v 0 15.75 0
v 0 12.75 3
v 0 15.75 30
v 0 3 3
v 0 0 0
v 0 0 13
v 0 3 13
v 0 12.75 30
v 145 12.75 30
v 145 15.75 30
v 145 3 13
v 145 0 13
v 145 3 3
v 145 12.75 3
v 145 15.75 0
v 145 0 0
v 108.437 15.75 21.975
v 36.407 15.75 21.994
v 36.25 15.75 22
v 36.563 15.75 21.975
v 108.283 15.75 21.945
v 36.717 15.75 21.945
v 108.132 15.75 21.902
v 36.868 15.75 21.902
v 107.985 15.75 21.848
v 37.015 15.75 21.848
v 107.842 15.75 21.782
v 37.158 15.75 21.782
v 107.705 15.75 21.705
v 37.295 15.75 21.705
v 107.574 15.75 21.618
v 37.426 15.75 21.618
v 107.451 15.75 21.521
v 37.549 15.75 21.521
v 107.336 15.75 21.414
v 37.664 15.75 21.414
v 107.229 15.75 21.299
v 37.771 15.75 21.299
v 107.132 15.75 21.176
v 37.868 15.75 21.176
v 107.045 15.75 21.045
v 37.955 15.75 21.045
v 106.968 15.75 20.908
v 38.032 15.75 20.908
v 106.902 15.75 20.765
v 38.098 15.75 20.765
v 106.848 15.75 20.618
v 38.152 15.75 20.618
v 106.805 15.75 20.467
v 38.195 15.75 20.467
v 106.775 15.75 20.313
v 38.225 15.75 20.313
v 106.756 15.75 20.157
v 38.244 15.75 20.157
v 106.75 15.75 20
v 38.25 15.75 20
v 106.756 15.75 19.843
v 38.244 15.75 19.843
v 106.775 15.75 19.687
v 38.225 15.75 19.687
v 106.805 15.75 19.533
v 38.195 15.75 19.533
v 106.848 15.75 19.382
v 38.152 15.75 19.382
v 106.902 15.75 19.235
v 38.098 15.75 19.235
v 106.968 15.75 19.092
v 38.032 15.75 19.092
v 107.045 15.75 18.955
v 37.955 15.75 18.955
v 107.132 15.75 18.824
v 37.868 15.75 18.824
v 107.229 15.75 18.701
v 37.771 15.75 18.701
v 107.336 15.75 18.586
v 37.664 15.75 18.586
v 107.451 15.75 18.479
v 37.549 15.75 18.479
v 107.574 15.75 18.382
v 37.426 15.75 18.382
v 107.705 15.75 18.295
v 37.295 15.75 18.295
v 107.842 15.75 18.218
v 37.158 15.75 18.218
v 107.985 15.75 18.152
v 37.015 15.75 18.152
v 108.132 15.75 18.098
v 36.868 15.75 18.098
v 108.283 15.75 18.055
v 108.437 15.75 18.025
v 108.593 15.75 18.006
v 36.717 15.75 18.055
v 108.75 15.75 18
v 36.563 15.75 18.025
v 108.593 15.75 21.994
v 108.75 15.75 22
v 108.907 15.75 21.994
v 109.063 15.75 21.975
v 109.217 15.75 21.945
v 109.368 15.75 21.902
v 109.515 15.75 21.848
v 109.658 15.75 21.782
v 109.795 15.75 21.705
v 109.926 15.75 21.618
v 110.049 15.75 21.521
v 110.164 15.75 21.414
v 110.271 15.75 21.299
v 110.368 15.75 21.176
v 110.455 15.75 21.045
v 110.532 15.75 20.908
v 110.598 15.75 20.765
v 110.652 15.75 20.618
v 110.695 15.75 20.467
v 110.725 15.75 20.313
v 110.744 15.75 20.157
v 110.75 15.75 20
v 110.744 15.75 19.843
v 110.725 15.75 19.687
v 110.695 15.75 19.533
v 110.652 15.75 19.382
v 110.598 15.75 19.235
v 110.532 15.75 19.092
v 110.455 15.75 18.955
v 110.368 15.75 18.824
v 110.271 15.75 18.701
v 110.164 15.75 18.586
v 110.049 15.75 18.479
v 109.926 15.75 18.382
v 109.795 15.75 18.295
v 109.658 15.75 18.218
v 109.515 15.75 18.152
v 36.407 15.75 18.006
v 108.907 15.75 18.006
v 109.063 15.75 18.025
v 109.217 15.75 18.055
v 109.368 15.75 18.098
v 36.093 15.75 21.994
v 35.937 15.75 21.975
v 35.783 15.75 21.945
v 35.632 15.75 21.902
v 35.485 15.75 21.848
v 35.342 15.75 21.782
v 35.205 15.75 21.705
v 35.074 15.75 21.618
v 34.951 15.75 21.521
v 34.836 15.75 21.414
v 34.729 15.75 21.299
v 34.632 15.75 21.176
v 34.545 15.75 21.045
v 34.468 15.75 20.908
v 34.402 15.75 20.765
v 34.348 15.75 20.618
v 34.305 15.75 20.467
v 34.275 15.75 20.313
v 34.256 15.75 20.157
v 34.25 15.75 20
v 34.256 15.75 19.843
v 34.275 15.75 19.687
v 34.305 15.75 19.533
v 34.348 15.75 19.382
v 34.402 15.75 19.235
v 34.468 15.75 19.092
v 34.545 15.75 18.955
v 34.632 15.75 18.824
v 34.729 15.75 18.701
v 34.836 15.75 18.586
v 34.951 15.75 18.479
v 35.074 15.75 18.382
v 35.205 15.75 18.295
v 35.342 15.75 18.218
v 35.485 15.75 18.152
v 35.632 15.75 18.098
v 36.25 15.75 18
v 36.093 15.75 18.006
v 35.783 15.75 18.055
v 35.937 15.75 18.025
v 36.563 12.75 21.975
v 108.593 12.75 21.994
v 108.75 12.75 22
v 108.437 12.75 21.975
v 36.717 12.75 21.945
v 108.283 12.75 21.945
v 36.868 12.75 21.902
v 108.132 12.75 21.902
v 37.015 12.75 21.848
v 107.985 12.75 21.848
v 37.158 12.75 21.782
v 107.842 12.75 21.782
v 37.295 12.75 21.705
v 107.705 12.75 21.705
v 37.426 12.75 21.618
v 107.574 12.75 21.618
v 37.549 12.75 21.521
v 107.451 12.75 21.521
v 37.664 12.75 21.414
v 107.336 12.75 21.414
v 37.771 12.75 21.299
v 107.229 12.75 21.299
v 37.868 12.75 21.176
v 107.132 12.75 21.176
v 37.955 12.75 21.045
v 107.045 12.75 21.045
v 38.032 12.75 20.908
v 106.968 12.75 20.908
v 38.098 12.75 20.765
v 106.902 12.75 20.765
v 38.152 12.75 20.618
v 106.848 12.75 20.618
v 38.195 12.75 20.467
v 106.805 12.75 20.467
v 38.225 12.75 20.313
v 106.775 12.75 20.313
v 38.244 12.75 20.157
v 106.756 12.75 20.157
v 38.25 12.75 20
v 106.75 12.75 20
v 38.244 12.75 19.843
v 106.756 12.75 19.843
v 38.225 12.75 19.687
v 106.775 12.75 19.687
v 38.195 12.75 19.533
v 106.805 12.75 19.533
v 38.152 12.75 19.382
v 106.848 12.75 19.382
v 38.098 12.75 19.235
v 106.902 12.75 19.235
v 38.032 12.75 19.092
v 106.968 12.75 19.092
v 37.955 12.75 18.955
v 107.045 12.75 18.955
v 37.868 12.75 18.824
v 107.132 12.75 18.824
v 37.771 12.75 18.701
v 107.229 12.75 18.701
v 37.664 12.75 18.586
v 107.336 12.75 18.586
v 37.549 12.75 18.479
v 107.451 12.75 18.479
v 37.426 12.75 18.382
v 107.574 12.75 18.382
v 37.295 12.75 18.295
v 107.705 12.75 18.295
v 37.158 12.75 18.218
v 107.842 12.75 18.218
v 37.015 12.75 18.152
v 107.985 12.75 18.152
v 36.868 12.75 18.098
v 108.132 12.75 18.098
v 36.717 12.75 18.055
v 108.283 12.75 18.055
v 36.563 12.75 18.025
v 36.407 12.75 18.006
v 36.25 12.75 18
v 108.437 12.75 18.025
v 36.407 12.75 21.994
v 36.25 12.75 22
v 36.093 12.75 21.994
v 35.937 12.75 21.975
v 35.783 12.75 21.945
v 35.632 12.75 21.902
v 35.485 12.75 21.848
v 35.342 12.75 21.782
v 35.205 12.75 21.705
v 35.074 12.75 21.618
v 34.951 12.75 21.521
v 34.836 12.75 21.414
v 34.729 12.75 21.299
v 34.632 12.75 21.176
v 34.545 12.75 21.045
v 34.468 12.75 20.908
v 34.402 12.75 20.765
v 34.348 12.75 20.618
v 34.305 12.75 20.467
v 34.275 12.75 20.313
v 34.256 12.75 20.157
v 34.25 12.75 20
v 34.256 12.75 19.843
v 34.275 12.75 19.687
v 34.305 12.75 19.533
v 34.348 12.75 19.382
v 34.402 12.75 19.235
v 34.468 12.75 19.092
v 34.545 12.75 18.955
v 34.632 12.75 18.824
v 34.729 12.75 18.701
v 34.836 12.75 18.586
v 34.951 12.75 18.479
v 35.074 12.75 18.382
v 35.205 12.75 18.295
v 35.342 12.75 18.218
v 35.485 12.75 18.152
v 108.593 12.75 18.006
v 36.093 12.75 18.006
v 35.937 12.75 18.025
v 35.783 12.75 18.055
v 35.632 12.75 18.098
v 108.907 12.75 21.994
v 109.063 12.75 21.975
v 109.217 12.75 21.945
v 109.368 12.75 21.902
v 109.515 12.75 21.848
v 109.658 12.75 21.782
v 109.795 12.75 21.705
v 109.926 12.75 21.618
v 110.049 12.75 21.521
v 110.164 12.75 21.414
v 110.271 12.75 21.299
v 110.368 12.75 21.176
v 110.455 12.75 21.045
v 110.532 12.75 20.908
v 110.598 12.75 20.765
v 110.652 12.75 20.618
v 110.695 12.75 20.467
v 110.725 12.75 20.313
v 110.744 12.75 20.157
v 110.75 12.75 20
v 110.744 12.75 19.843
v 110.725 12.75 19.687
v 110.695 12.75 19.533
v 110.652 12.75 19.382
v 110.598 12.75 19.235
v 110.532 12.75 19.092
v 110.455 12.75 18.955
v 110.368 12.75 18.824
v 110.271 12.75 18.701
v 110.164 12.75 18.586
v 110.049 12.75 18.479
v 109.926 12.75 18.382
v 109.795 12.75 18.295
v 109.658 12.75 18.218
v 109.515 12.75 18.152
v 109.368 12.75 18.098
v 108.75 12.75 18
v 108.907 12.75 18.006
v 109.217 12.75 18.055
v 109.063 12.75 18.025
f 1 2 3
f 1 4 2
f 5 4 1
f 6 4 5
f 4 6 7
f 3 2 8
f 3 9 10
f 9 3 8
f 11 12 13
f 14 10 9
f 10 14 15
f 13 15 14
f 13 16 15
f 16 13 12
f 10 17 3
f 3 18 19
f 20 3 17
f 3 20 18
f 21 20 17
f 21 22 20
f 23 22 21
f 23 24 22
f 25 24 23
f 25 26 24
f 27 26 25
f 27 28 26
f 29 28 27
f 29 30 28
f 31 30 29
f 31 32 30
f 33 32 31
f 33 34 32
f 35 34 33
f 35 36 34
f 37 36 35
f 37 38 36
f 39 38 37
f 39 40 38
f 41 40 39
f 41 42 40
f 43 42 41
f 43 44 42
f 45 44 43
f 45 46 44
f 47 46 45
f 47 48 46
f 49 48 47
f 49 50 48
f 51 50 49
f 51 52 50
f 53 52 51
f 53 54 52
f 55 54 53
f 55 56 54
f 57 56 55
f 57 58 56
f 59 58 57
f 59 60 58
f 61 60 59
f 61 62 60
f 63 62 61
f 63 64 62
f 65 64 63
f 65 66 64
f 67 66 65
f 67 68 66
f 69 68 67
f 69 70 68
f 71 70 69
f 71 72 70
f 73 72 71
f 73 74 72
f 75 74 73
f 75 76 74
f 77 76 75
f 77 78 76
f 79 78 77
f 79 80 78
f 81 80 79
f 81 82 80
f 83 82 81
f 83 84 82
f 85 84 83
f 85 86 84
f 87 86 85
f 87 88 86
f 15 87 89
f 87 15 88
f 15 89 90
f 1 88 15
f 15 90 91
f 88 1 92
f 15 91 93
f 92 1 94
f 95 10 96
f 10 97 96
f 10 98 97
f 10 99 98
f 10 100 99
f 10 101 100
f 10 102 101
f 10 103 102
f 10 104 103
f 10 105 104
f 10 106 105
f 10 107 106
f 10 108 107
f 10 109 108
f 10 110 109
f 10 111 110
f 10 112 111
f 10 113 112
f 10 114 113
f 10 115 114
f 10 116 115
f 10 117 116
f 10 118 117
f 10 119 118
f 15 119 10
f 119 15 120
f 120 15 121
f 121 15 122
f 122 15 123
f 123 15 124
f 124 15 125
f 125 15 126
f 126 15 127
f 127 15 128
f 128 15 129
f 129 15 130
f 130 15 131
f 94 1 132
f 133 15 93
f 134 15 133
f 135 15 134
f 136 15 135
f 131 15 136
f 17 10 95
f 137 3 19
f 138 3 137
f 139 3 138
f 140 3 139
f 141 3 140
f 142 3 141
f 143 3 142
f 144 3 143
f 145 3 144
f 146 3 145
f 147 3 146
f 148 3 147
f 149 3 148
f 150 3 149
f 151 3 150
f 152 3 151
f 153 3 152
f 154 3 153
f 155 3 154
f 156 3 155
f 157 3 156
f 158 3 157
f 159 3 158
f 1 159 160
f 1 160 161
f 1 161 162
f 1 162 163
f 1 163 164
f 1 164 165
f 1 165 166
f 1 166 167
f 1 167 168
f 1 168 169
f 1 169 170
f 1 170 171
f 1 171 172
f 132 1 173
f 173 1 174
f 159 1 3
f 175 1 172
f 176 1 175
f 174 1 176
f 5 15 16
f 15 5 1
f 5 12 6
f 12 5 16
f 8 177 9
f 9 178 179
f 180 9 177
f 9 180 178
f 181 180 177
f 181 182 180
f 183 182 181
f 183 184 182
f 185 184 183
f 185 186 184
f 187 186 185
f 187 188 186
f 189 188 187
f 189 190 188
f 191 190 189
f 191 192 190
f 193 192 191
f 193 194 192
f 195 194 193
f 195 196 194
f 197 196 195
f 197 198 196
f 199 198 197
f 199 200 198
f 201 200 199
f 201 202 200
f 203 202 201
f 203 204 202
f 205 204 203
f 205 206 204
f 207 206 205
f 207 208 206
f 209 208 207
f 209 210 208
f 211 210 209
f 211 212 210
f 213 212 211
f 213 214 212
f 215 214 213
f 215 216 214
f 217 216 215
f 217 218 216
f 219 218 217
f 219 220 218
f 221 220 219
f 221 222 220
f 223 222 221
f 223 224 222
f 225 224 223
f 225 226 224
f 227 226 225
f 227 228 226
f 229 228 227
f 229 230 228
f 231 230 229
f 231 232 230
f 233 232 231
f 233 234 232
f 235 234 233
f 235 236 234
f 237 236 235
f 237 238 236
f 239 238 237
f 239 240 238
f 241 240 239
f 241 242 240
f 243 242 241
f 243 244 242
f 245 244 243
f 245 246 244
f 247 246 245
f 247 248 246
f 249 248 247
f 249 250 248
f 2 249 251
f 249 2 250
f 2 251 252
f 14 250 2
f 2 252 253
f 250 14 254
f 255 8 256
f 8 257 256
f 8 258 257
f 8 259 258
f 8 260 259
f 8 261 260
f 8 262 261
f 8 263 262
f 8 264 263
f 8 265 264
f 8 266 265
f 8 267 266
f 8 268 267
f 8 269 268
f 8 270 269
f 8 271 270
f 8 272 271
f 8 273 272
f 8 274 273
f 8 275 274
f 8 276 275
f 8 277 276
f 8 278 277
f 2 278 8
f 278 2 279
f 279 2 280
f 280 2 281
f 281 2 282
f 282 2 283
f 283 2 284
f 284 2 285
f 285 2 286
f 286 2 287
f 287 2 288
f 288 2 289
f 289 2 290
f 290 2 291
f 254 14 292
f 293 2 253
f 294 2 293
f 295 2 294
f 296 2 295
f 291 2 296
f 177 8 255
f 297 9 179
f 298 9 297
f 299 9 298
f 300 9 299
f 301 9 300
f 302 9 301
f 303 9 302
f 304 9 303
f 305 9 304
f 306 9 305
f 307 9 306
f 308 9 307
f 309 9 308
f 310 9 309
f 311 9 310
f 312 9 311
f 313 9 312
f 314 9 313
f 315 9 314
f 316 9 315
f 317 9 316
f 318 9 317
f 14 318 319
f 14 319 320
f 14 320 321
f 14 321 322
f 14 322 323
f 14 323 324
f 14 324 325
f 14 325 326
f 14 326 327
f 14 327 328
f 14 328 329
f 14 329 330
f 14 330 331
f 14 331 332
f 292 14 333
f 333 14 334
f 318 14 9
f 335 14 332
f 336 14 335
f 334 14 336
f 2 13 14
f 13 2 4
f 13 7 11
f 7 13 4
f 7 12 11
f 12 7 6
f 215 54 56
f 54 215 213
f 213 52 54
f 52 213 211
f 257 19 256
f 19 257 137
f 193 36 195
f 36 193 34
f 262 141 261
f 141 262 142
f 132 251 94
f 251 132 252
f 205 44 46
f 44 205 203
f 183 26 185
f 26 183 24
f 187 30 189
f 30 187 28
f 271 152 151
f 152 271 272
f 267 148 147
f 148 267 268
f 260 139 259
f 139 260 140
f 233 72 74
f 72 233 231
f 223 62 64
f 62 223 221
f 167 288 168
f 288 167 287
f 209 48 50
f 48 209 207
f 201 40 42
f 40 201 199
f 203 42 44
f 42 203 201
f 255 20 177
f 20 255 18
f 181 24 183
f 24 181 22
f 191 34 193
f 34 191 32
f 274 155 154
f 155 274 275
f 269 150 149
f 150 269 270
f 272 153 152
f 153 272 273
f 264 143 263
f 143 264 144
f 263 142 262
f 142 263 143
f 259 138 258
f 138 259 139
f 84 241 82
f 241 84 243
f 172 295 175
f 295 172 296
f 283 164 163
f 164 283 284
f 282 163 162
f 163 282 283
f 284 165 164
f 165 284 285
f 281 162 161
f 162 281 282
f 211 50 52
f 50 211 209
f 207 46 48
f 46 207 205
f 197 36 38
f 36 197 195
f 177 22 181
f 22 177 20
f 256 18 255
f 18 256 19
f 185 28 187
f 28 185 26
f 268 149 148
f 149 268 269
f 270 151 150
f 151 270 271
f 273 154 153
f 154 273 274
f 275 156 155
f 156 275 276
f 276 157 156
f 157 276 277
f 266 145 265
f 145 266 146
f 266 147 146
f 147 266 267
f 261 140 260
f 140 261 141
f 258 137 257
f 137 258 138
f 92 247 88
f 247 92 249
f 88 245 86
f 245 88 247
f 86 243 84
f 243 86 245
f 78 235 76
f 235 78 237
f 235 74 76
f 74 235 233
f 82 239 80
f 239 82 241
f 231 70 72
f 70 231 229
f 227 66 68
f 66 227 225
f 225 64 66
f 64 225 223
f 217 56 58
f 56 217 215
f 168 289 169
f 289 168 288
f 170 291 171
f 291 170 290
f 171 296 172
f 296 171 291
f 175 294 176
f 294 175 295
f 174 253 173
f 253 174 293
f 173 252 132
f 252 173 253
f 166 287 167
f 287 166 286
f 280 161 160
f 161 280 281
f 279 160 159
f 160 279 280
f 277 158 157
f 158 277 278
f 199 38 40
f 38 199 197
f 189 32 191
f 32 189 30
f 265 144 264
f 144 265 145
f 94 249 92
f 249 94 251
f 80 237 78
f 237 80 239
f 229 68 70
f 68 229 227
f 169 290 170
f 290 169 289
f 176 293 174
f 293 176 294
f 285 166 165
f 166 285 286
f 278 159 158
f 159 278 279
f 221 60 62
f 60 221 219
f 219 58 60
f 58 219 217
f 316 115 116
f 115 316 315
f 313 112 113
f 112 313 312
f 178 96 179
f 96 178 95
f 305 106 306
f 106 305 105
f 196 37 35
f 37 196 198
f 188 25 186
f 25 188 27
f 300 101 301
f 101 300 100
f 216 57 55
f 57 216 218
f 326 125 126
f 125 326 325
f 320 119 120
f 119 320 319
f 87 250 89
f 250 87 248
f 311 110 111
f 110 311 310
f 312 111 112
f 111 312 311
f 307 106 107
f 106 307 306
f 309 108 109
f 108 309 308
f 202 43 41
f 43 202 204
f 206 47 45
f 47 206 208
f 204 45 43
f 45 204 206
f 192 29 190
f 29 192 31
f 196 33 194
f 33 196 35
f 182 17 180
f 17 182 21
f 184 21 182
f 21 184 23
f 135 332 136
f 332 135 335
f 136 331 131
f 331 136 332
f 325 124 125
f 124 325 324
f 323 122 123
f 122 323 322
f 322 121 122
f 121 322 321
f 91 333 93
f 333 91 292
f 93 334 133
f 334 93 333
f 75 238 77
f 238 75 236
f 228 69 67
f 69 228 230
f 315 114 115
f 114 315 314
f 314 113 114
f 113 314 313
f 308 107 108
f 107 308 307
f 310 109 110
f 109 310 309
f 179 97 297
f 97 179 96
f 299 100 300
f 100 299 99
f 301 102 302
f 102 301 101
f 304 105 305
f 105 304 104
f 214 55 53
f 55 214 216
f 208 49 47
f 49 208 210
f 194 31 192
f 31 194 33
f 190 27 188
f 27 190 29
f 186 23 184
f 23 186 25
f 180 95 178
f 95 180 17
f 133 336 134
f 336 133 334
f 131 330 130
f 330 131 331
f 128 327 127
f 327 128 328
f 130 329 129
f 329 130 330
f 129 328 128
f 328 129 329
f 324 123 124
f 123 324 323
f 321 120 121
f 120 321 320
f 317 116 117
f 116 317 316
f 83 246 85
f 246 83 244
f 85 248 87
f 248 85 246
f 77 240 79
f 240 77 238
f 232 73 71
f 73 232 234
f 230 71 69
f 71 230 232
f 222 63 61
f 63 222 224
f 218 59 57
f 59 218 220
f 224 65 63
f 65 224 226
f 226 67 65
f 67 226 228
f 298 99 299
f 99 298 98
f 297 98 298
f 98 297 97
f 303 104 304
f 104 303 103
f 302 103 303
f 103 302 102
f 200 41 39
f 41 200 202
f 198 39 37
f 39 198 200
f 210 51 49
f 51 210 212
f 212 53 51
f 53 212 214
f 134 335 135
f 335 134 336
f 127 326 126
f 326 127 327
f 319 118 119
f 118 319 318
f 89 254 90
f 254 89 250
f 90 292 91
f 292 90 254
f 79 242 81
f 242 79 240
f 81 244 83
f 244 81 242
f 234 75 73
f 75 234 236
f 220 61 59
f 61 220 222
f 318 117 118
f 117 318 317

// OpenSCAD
deviceThickness = 9.75;
holderThickness = 3;
holderWidth = 145; // Make this wider if your printer build volume allows it!
holderHeight = 30;

screwHoleDiameter = 4;

module holder() {
	cube([holderWidth, deviceThickness + (holderThickness * 2), holderHeight]);
}

module deviceCutOut() {
	translate([-holderWidth * 0.25, holderThickness, holderThickness])
	cube([holderWidth * 1.5, deviceThickness, holderHeight]);	
}

module frontLip() {
	translate([-holderWidth * 0.25, -holderThickness * 2, holderThickness + (holderHeight / 3)])
	cube([holderWidth * 1.5, deviceThickness, holderHeight]);	
}

module screwHole() {
	rotate([90, 0, 0])
	cylinder(h=20, r=screwHoleDiameter / 2, center=false, $fn=80);
}

difference() {
	difference() {
		difference() {
			holder();
			deviceCutOut();
		}

		frontLip();
	}

	translate([holderWidth / 4, deviceThickness + (holderThickness * 2) + 10, holderHeight / 1.5])
	screwHole();

	translate([(holderWidth / 4) * 3, deviceThickness + (holderThickness * 2) + 10, holderHeight / 1.5])
	screwHole();
}
